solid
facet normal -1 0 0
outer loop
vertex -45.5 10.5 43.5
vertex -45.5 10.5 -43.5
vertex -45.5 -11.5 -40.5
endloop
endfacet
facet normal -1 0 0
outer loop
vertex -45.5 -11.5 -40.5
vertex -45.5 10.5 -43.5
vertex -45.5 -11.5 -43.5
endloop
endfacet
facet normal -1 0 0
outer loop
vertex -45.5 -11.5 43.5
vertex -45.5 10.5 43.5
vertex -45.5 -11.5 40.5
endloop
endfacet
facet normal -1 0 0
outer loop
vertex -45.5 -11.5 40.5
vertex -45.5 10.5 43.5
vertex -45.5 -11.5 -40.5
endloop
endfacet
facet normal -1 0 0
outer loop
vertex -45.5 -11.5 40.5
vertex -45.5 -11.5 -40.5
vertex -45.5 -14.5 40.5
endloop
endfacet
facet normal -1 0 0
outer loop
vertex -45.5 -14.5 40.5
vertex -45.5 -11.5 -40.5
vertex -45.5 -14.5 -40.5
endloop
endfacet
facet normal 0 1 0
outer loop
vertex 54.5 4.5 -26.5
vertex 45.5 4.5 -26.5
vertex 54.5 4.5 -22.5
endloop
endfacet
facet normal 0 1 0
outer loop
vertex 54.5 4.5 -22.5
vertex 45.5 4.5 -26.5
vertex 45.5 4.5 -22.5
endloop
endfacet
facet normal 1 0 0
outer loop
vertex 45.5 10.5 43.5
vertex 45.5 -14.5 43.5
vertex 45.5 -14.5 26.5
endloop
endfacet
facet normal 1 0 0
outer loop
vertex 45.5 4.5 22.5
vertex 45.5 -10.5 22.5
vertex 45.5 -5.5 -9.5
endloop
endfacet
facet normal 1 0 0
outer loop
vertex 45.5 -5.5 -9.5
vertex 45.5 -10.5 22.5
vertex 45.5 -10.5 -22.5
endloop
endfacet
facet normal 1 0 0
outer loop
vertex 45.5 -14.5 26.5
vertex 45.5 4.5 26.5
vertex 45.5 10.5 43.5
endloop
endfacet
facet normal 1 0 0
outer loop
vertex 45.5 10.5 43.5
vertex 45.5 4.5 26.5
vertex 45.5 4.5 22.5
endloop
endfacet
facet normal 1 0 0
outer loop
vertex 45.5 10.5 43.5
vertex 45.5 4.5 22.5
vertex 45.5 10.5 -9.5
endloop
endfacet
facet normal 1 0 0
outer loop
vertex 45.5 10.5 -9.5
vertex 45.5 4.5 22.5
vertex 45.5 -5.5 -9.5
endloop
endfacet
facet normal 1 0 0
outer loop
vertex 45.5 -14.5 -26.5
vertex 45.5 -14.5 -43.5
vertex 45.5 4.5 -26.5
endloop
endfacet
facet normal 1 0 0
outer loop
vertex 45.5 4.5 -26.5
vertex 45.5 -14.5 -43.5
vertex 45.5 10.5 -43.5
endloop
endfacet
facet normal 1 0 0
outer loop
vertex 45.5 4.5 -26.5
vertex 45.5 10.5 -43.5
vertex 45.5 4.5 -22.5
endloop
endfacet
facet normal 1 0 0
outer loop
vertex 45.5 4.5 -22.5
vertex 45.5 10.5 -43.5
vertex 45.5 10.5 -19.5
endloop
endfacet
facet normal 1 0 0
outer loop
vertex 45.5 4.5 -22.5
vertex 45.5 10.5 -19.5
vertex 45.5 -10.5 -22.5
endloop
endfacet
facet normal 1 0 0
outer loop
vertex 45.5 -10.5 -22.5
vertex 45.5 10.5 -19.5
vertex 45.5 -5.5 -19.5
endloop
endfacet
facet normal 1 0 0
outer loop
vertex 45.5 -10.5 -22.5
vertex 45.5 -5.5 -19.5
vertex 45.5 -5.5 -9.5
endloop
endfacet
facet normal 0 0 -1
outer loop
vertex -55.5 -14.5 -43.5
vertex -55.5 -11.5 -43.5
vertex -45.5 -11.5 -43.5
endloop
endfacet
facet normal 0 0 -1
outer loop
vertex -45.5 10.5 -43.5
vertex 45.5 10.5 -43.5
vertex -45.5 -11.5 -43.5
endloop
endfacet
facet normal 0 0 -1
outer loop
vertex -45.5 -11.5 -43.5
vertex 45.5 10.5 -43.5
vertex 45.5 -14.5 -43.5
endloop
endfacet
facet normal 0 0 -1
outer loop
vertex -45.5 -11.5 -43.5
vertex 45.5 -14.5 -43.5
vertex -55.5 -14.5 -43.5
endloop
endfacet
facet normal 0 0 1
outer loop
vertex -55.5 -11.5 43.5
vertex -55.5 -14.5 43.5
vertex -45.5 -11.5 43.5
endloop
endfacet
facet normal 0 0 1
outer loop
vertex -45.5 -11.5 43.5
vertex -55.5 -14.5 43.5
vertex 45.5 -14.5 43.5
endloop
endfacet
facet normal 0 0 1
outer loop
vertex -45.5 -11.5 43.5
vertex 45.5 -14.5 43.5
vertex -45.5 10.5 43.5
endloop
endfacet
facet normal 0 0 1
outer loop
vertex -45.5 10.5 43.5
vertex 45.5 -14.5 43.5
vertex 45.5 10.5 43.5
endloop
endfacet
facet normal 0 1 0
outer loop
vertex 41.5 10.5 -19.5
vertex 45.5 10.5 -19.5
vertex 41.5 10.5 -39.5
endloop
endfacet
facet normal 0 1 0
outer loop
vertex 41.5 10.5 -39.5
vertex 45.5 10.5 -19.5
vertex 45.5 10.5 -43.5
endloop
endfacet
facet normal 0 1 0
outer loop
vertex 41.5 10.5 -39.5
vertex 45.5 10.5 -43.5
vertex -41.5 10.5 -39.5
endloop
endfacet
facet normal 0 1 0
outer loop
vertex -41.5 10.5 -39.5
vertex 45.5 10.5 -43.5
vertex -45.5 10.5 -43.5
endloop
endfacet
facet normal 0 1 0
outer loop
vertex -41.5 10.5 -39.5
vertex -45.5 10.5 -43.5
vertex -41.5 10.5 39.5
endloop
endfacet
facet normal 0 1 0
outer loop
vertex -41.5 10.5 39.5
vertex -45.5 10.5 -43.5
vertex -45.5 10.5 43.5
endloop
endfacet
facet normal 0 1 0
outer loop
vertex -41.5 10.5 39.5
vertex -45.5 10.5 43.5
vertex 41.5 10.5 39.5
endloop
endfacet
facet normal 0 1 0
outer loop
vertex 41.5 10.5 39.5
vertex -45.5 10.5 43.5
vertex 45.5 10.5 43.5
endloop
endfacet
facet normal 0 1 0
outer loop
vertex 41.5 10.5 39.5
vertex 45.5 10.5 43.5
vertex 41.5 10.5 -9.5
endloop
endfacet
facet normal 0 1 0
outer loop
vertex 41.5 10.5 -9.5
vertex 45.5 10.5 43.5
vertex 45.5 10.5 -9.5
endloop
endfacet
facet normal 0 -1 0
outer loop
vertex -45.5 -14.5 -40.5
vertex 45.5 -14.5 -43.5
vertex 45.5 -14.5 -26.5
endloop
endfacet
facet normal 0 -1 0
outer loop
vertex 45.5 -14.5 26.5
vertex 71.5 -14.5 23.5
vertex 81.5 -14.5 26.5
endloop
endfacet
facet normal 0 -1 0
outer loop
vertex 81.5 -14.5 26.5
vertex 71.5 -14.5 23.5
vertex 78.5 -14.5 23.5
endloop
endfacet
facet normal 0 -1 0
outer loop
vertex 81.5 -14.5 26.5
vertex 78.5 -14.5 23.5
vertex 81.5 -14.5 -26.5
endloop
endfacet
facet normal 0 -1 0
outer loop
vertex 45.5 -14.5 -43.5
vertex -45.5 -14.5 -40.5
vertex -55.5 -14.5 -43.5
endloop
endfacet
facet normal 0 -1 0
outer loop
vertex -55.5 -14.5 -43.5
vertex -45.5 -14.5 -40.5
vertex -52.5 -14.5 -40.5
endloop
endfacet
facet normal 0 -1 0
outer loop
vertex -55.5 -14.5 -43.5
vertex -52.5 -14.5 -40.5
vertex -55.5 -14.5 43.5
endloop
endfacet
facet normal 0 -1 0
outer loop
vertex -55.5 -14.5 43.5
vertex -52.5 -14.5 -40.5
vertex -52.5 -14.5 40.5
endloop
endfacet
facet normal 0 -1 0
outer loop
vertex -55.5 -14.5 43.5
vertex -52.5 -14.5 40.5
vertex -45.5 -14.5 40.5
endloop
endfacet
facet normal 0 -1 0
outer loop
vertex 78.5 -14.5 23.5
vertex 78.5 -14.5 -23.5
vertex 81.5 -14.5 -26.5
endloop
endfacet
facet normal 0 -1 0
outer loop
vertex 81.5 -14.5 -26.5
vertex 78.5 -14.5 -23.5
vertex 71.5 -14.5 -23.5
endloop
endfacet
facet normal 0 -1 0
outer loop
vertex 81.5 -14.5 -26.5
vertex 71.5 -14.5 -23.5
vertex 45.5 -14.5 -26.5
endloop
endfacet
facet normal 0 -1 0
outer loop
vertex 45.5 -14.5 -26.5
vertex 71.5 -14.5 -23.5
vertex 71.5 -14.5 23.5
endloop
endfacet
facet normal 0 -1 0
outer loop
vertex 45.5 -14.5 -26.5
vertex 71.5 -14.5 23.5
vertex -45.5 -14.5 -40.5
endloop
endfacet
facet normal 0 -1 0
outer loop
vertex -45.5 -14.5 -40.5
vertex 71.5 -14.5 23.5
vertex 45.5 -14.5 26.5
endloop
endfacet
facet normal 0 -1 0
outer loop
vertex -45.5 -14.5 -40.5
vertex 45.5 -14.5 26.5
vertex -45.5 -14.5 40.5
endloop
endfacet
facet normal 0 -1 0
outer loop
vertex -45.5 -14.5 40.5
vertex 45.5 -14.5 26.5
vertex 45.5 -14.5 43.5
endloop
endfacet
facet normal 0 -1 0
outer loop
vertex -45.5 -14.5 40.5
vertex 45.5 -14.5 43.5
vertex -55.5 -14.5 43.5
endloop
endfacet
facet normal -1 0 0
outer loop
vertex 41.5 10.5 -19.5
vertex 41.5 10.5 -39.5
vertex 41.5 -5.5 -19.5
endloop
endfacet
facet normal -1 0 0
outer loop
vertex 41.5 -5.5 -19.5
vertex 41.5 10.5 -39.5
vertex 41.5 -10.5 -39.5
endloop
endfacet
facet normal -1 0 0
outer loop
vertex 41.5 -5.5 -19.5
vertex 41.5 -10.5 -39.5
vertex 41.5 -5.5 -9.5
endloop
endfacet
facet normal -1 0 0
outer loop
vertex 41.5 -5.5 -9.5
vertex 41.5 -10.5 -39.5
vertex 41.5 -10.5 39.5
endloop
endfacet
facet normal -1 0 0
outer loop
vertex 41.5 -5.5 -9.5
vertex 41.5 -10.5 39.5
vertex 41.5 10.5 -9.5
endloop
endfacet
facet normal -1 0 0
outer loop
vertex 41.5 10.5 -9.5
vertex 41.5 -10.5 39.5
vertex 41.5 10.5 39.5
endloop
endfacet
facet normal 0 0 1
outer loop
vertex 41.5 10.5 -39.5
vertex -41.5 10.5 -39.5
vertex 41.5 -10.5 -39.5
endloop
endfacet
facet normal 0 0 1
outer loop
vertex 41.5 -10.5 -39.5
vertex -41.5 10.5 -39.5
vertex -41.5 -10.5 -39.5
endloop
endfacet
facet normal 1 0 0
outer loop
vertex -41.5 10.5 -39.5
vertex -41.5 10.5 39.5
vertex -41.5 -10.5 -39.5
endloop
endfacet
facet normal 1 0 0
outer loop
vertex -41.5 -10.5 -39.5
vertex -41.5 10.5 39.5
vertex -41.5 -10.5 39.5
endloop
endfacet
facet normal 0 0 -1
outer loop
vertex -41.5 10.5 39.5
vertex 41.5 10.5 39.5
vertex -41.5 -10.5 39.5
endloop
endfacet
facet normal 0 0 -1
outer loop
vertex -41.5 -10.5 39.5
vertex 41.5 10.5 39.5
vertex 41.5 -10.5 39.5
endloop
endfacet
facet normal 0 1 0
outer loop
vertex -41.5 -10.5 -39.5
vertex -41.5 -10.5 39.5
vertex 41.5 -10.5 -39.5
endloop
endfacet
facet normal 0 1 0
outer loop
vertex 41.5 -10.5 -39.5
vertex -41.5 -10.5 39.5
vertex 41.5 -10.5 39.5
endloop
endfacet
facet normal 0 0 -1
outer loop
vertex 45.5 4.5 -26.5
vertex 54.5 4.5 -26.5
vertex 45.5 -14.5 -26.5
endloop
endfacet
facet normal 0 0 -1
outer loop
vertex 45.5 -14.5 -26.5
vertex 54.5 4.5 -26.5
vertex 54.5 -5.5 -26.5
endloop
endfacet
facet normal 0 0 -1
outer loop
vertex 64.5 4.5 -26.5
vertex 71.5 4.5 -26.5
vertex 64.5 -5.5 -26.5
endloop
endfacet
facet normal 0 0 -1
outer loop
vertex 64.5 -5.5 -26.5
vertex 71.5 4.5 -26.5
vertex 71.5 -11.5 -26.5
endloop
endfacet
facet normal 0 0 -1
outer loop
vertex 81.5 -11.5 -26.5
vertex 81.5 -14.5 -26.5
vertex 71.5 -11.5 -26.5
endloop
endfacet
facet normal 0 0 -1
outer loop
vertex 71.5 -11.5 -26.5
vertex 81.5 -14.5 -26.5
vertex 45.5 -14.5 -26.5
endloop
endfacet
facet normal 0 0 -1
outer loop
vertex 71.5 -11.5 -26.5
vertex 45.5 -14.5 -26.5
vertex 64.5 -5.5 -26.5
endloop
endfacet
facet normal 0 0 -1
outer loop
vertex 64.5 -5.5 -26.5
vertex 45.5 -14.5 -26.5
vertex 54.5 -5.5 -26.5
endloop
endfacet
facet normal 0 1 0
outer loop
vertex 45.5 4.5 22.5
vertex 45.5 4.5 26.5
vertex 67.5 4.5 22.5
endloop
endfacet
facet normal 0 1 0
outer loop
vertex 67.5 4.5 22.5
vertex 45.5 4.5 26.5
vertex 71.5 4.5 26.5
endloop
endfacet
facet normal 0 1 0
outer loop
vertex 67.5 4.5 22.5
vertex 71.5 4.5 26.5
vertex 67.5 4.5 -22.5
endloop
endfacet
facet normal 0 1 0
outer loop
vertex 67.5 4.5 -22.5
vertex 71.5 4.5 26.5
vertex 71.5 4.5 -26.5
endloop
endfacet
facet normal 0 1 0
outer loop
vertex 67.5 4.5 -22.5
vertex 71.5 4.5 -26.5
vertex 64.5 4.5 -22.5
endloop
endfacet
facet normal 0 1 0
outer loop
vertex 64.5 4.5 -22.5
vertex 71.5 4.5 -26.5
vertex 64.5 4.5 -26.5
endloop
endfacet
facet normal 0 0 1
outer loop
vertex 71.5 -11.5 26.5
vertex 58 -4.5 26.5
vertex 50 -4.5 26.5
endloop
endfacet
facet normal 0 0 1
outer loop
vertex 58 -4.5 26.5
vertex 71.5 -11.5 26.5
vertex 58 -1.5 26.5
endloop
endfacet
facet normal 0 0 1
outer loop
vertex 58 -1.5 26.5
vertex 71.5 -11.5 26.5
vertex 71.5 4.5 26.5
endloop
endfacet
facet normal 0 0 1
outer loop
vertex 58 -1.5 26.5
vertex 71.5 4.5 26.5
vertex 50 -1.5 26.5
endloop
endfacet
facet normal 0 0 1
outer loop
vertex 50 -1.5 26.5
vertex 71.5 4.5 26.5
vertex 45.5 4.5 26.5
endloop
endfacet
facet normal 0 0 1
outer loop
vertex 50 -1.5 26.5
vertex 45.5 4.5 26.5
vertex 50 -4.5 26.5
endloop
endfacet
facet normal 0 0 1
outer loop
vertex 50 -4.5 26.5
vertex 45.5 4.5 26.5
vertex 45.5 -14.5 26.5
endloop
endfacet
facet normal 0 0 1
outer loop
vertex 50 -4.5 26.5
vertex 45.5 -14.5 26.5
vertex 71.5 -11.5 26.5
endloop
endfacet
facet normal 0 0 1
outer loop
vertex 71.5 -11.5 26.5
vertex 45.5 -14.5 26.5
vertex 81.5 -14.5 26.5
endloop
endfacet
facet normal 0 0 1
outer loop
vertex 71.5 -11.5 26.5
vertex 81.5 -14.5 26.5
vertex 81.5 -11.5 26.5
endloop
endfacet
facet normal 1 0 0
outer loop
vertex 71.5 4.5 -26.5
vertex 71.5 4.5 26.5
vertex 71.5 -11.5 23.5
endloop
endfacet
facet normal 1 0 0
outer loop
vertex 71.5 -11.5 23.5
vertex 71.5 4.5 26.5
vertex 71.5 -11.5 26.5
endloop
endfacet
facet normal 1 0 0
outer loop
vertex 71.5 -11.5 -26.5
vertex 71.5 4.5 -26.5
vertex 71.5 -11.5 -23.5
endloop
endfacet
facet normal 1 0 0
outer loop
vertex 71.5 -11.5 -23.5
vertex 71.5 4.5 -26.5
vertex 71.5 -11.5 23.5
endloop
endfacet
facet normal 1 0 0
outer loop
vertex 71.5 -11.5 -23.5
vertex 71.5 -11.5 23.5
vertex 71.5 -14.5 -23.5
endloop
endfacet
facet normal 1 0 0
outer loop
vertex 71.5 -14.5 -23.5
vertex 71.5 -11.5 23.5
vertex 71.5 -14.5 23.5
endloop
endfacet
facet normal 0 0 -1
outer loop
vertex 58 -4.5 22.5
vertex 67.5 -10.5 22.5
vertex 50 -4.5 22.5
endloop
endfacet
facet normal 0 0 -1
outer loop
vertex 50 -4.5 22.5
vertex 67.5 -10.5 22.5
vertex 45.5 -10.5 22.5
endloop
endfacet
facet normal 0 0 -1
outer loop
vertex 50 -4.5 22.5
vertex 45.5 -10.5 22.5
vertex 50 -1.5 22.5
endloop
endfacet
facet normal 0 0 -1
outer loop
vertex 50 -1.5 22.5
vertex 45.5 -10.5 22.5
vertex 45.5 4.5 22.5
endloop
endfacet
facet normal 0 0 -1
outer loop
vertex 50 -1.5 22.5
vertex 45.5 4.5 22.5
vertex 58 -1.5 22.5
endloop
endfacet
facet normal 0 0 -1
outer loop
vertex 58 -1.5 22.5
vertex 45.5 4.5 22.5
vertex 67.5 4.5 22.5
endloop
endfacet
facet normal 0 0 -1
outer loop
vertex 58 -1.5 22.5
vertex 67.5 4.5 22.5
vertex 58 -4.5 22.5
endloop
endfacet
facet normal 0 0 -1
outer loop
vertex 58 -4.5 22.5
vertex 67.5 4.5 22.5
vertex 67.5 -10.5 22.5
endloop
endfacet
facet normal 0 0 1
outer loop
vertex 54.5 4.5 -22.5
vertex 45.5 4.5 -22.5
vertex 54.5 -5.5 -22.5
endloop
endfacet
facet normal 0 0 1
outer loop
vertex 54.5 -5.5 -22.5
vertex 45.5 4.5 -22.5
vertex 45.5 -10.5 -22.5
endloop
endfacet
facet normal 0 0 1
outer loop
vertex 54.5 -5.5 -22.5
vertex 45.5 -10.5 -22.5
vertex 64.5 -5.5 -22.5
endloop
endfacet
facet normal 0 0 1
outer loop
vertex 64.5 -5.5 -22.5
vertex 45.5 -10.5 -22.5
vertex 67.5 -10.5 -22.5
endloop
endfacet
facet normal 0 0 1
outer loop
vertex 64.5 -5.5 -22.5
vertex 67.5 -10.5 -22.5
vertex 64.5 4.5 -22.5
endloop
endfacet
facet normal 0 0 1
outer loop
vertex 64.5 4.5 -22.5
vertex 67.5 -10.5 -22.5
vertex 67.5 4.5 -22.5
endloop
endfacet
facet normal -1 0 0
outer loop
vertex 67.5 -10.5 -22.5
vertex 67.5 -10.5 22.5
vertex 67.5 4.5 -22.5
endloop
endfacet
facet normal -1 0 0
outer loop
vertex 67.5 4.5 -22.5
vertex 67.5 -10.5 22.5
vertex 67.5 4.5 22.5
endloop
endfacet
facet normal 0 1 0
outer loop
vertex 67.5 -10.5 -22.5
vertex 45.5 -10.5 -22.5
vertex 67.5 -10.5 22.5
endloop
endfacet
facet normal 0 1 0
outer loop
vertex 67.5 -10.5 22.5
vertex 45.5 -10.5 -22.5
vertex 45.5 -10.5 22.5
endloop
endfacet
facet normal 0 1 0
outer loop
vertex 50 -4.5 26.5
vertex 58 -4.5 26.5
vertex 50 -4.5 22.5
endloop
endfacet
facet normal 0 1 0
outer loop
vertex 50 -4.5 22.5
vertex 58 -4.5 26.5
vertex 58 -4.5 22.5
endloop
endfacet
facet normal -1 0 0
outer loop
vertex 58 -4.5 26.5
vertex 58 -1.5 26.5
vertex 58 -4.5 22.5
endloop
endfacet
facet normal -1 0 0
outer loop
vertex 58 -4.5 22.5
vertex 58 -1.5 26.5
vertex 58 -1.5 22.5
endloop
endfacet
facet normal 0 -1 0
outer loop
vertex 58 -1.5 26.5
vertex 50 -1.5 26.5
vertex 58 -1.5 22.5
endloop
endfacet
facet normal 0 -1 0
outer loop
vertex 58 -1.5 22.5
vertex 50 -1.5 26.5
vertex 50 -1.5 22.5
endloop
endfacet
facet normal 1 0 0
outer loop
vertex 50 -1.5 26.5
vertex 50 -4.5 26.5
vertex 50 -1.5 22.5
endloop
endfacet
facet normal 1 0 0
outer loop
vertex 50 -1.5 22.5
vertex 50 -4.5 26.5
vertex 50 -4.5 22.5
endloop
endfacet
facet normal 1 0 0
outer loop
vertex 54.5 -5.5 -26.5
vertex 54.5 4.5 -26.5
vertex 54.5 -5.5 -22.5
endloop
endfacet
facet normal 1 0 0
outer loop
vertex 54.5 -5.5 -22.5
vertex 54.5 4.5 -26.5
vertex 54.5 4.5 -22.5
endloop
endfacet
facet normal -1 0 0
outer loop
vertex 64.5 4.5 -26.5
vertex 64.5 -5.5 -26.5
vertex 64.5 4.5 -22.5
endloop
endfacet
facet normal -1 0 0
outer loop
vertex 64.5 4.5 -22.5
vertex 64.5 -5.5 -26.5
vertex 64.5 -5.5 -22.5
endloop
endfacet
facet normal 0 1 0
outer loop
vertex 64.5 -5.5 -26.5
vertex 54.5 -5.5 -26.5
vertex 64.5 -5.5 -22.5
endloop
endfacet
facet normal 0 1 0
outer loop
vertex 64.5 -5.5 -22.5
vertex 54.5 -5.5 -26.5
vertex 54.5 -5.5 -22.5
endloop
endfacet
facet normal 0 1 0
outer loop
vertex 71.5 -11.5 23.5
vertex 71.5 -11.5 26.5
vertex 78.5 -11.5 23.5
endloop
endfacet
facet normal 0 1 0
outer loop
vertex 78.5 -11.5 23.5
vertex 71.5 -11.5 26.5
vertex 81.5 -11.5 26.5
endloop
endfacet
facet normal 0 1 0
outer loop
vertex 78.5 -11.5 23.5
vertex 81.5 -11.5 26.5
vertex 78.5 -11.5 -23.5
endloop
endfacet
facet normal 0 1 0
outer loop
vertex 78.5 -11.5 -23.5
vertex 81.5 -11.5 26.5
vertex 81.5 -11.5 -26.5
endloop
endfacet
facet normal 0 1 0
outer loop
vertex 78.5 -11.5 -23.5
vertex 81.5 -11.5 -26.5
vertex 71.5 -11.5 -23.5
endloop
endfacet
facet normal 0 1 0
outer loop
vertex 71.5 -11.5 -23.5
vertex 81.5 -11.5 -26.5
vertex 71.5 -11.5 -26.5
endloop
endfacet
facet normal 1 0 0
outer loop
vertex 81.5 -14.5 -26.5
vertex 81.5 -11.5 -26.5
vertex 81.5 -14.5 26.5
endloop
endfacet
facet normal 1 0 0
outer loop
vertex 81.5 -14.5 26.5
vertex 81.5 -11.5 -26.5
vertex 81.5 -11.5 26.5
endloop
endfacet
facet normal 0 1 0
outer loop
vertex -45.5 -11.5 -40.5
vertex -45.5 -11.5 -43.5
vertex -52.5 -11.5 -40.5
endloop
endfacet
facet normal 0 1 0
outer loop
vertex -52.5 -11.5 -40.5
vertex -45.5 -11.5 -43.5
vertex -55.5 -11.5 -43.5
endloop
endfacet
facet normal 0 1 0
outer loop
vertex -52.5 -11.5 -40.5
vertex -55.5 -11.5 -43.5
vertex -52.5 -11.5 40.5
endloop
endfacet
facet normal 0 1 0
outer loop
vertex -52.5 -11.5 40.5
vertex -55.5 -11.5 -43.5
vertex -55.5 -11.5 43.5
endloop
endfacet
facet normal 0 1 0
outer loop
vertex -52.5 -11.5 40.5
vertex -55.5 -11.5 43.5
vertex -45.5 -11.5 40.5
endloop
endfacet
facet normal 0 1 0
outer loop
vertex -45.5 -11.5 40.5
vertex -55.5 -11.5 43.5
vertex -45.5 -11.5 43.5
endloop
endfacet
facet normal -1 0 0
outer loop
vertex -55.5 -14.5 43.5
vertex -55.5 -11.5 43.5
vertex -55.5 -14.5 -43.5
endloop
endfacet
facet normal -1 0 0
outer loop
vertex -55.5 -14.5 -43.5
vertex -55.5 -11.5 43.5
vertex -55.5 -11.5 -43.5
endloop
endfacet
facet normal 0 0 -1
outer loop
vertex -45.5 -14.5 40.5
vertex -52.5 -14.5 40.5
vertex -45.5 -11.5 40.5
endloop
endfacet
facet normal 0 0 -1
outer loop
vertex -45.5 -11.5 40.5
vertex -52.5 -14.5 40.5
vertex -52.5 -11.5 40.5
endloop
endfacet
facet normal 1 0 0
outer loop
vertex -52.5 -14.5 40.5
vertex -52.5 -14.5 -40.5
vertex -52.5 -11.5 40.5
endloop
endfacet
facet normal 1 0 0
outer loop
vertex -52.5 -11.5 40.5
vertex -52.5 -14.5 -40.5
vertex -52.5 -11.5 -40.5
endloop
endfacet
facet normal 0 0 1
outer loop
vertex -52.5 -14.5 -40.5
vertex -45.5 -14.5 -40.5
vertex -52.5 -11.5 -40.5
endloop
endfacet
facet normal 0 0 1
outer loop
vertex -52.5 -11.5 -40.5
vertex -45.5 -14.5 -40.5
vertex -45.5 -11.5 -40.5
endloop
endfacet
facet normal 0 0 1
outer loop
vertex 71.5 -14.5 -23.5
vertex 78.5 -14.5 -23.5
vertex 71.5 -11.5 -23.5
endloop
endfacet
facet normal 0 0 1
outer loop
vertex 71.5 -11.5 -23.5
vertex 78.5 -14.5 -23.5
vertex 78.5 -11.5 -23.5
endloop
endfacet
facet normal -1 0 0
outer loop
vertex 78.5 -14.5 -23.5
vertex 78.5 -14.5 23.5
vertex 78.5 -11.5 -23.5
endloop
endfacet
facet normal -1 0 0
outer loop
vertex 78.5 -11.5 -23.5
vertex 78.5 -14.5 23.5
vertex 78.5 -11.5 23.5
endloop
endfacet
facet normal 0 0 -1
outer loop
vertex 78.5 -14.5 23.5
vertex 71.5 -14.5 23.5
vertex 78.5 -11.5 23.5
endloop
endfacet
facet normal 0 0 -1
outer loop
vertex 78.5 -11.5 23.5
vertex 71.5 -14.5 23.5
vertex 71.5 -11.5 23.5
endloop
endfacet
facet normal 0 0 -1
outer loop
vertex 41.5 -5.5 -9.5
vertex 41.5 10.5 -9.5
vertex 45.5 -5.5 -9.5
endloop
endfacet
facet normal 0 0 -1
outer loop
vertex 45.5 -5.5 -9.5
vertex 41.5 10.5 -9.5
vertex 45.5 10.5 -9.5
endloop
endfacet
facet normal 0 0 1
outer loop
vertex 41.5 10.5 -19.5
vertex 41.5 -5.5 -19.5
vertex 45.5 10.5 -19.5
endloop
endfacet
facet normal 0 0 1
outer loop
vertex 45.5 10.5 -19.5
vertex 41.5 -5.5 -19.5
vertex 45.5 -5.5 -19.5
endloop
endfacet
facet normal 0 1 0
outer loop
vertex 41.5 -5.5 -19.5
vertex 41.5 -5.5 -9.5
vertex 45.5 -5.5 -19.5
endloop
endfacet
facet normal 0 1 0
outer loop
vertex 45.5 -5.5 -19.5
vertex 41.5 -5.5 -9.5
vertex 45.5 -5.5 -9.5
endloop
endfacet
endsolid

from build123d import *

# Parameters (mm, degrees)
SKETCH1_W           = 83
SKETCH1_H           = 79
BOSS_EXTRUDE1_DEPTH = 10.5
SHELL1_T            = 4
SKETCH4_W           = 53
SKETCH4_H           = 19
BOSS_EXTRUDE2_DEPTH = 26
SKETCH5_W           = 22
SKETCH5_H           = 45
CUT_EXTRUDE1_DEPTH  = 15
SKETCH7_W           = 8
SKETCH7_H           = 3
CUT_EXTRUDE2_DEPTH  = 4
SKETCH8_W           = 10
SKETCH8_H           = 10
CUT_EXTRUDE3_DEPTH  = 4
SKETCH9_W           = 53
SKETCH9_H           = 3
BOSS_EXTRUDE4_DEPTH = 10
SKETCH10_W          = 87
SKETCH10_H          = 3
BOSS_EXTRUDE5_DEPTH = 10
SKETCH11_W          = 7
SKETCH11_H          = 47
SKETCH11_H_2        = 81
CUT_EXTRUDE4_DEPTH  = 3
SKETCH12_W          = 10
SKETCH12_H          = 16
CUT_EXTRUDE5_DEPTH  = 4


with BuildPart() as part:
    # Sketch1 → Boss-Extrude1 (new, symmetric)
    with BuildSketch(Plane(origin=(0, 0, 0), x_dir=(1, 0, 0), z_dir=(0, 1, 0))):
        Rectangle(SKETCH1_W, SKETCH1_H)
    extrude(amount=BOSS_EXTRUDE1_DEPTH, both=True)

    # Shell1
    shell1_openings = [part.faces().sort_by_distance(p)[0] for p in [
        (0, 10.5, 0),
    ]]
    offset(amount=SHELL1_T, openings=shell1_openings, kind=Kind.INTERSECTION)

    # Sketch4 → Boss-Extrude2 (add)
    with BuildSketch(Plane(origin=(45.5, 0, 0), x_dir=(0, 0, -1), z_dir=(1, 0, 0))):
        with Locations((0, -5)):
            Rectangle(SKETCH4_W, SKETCH4_H)
    extrude(amount=BOSS_EXTRUDE2_DEPTH)

    # Sketch5 → Cut-Extrude1 (cut)
    with BuildSketch(Plane(origin=(0, 4.5, 0), x_dir=(1, 0, 0), z_dir=(0, 1, 0))):
        with Locations((56.5, 0)):
            Rectangle(SKETCH5_W, SKETCH5_H)
    extrude(amount=-CUT_EXTRUDE1_DEPTH, mode=Mode.SUBTRACT)

    # Sketch7 → Cut-Extrude2 (cut)
    with BuildSketch(Plane(origin=(0, 0, 22.5), x_dir=(-1, 0, 0), z_dir=(0, 0, -1))):
        with Locations((-54, -3)):
            Rectangle(SKETCH7_W, SKETCH7_H)
    extrude(amount=-CUT_EXTRUDE2_DEPTH, mode=Mode.SUBTRACT)

    # Sketch8 → Cut-Extrude3 (cut)
    with BuildSketch(Plane.XY.offset(-22.5)):
        with Locations((59.5, -0.5)):
            Rectangle(SKETCH8_W, SKETCH8_H)
    extrude(amount=-CUT_EXTRUDE3_DEPTH, mode=Mode.SUBTRACT)

    # Sketch9 → Boss-Extrude4 (add)
    with BuildSketch(Plane(origin=(71.5, 0, 0), x_dir=(0, 0, -1), z_dir=(1, 0, 0))):
        with Locations((0, -13)):
            Rectangle(SKETCH9_W, SKETCH9_H)
    extrude(amount=BOSS_EXTRUDE4_DEPTH)

    # Sketch10 → Boss-Extrude5 (add)
    with BuildSketch(Plane.ZY.offset(45.5)):
        with Locations((0, -13)):
            Rectangle(SKETCH10_W, SKETCH10_H)
    extrude(amount=BOSS_EXTRUDE5_DEPTH)

    # Sketch11 → Cut-Extrude4 (cut)
    with BuildSketch(Plane(origin=(0, -11.5, 0), x_dir=(1, 0, 0), z_dir=(0, 1, 0))):
        with Locations((75, 0)):
            Rectangle(SKETCH11_W, SKETCH11_H)
        with Locations((-49, 0)):
            Rectangle(SKETCH11_W, SKETCH11_H_2)
    extrude(amount=-CUT_EXTRUDE4_DEPTH, mode=Mode.SUBTRACT)

    # Sketch12 → Cut-Extrude5 (cut)
    with BuildSketch(Plane(origin=(45.5, 0, 0), x_dir=(0, 0, -1), z_dir=(1, 0, 0))):
        with Locations((14.5, 2.5)):
            Rectangle(SKETCH12_W, SKETCH12_H)
    extrude(amount=-CUT_EXTRUDE5_DEPTH, mode=Mode.SUBTRACT)


solid = part.part
